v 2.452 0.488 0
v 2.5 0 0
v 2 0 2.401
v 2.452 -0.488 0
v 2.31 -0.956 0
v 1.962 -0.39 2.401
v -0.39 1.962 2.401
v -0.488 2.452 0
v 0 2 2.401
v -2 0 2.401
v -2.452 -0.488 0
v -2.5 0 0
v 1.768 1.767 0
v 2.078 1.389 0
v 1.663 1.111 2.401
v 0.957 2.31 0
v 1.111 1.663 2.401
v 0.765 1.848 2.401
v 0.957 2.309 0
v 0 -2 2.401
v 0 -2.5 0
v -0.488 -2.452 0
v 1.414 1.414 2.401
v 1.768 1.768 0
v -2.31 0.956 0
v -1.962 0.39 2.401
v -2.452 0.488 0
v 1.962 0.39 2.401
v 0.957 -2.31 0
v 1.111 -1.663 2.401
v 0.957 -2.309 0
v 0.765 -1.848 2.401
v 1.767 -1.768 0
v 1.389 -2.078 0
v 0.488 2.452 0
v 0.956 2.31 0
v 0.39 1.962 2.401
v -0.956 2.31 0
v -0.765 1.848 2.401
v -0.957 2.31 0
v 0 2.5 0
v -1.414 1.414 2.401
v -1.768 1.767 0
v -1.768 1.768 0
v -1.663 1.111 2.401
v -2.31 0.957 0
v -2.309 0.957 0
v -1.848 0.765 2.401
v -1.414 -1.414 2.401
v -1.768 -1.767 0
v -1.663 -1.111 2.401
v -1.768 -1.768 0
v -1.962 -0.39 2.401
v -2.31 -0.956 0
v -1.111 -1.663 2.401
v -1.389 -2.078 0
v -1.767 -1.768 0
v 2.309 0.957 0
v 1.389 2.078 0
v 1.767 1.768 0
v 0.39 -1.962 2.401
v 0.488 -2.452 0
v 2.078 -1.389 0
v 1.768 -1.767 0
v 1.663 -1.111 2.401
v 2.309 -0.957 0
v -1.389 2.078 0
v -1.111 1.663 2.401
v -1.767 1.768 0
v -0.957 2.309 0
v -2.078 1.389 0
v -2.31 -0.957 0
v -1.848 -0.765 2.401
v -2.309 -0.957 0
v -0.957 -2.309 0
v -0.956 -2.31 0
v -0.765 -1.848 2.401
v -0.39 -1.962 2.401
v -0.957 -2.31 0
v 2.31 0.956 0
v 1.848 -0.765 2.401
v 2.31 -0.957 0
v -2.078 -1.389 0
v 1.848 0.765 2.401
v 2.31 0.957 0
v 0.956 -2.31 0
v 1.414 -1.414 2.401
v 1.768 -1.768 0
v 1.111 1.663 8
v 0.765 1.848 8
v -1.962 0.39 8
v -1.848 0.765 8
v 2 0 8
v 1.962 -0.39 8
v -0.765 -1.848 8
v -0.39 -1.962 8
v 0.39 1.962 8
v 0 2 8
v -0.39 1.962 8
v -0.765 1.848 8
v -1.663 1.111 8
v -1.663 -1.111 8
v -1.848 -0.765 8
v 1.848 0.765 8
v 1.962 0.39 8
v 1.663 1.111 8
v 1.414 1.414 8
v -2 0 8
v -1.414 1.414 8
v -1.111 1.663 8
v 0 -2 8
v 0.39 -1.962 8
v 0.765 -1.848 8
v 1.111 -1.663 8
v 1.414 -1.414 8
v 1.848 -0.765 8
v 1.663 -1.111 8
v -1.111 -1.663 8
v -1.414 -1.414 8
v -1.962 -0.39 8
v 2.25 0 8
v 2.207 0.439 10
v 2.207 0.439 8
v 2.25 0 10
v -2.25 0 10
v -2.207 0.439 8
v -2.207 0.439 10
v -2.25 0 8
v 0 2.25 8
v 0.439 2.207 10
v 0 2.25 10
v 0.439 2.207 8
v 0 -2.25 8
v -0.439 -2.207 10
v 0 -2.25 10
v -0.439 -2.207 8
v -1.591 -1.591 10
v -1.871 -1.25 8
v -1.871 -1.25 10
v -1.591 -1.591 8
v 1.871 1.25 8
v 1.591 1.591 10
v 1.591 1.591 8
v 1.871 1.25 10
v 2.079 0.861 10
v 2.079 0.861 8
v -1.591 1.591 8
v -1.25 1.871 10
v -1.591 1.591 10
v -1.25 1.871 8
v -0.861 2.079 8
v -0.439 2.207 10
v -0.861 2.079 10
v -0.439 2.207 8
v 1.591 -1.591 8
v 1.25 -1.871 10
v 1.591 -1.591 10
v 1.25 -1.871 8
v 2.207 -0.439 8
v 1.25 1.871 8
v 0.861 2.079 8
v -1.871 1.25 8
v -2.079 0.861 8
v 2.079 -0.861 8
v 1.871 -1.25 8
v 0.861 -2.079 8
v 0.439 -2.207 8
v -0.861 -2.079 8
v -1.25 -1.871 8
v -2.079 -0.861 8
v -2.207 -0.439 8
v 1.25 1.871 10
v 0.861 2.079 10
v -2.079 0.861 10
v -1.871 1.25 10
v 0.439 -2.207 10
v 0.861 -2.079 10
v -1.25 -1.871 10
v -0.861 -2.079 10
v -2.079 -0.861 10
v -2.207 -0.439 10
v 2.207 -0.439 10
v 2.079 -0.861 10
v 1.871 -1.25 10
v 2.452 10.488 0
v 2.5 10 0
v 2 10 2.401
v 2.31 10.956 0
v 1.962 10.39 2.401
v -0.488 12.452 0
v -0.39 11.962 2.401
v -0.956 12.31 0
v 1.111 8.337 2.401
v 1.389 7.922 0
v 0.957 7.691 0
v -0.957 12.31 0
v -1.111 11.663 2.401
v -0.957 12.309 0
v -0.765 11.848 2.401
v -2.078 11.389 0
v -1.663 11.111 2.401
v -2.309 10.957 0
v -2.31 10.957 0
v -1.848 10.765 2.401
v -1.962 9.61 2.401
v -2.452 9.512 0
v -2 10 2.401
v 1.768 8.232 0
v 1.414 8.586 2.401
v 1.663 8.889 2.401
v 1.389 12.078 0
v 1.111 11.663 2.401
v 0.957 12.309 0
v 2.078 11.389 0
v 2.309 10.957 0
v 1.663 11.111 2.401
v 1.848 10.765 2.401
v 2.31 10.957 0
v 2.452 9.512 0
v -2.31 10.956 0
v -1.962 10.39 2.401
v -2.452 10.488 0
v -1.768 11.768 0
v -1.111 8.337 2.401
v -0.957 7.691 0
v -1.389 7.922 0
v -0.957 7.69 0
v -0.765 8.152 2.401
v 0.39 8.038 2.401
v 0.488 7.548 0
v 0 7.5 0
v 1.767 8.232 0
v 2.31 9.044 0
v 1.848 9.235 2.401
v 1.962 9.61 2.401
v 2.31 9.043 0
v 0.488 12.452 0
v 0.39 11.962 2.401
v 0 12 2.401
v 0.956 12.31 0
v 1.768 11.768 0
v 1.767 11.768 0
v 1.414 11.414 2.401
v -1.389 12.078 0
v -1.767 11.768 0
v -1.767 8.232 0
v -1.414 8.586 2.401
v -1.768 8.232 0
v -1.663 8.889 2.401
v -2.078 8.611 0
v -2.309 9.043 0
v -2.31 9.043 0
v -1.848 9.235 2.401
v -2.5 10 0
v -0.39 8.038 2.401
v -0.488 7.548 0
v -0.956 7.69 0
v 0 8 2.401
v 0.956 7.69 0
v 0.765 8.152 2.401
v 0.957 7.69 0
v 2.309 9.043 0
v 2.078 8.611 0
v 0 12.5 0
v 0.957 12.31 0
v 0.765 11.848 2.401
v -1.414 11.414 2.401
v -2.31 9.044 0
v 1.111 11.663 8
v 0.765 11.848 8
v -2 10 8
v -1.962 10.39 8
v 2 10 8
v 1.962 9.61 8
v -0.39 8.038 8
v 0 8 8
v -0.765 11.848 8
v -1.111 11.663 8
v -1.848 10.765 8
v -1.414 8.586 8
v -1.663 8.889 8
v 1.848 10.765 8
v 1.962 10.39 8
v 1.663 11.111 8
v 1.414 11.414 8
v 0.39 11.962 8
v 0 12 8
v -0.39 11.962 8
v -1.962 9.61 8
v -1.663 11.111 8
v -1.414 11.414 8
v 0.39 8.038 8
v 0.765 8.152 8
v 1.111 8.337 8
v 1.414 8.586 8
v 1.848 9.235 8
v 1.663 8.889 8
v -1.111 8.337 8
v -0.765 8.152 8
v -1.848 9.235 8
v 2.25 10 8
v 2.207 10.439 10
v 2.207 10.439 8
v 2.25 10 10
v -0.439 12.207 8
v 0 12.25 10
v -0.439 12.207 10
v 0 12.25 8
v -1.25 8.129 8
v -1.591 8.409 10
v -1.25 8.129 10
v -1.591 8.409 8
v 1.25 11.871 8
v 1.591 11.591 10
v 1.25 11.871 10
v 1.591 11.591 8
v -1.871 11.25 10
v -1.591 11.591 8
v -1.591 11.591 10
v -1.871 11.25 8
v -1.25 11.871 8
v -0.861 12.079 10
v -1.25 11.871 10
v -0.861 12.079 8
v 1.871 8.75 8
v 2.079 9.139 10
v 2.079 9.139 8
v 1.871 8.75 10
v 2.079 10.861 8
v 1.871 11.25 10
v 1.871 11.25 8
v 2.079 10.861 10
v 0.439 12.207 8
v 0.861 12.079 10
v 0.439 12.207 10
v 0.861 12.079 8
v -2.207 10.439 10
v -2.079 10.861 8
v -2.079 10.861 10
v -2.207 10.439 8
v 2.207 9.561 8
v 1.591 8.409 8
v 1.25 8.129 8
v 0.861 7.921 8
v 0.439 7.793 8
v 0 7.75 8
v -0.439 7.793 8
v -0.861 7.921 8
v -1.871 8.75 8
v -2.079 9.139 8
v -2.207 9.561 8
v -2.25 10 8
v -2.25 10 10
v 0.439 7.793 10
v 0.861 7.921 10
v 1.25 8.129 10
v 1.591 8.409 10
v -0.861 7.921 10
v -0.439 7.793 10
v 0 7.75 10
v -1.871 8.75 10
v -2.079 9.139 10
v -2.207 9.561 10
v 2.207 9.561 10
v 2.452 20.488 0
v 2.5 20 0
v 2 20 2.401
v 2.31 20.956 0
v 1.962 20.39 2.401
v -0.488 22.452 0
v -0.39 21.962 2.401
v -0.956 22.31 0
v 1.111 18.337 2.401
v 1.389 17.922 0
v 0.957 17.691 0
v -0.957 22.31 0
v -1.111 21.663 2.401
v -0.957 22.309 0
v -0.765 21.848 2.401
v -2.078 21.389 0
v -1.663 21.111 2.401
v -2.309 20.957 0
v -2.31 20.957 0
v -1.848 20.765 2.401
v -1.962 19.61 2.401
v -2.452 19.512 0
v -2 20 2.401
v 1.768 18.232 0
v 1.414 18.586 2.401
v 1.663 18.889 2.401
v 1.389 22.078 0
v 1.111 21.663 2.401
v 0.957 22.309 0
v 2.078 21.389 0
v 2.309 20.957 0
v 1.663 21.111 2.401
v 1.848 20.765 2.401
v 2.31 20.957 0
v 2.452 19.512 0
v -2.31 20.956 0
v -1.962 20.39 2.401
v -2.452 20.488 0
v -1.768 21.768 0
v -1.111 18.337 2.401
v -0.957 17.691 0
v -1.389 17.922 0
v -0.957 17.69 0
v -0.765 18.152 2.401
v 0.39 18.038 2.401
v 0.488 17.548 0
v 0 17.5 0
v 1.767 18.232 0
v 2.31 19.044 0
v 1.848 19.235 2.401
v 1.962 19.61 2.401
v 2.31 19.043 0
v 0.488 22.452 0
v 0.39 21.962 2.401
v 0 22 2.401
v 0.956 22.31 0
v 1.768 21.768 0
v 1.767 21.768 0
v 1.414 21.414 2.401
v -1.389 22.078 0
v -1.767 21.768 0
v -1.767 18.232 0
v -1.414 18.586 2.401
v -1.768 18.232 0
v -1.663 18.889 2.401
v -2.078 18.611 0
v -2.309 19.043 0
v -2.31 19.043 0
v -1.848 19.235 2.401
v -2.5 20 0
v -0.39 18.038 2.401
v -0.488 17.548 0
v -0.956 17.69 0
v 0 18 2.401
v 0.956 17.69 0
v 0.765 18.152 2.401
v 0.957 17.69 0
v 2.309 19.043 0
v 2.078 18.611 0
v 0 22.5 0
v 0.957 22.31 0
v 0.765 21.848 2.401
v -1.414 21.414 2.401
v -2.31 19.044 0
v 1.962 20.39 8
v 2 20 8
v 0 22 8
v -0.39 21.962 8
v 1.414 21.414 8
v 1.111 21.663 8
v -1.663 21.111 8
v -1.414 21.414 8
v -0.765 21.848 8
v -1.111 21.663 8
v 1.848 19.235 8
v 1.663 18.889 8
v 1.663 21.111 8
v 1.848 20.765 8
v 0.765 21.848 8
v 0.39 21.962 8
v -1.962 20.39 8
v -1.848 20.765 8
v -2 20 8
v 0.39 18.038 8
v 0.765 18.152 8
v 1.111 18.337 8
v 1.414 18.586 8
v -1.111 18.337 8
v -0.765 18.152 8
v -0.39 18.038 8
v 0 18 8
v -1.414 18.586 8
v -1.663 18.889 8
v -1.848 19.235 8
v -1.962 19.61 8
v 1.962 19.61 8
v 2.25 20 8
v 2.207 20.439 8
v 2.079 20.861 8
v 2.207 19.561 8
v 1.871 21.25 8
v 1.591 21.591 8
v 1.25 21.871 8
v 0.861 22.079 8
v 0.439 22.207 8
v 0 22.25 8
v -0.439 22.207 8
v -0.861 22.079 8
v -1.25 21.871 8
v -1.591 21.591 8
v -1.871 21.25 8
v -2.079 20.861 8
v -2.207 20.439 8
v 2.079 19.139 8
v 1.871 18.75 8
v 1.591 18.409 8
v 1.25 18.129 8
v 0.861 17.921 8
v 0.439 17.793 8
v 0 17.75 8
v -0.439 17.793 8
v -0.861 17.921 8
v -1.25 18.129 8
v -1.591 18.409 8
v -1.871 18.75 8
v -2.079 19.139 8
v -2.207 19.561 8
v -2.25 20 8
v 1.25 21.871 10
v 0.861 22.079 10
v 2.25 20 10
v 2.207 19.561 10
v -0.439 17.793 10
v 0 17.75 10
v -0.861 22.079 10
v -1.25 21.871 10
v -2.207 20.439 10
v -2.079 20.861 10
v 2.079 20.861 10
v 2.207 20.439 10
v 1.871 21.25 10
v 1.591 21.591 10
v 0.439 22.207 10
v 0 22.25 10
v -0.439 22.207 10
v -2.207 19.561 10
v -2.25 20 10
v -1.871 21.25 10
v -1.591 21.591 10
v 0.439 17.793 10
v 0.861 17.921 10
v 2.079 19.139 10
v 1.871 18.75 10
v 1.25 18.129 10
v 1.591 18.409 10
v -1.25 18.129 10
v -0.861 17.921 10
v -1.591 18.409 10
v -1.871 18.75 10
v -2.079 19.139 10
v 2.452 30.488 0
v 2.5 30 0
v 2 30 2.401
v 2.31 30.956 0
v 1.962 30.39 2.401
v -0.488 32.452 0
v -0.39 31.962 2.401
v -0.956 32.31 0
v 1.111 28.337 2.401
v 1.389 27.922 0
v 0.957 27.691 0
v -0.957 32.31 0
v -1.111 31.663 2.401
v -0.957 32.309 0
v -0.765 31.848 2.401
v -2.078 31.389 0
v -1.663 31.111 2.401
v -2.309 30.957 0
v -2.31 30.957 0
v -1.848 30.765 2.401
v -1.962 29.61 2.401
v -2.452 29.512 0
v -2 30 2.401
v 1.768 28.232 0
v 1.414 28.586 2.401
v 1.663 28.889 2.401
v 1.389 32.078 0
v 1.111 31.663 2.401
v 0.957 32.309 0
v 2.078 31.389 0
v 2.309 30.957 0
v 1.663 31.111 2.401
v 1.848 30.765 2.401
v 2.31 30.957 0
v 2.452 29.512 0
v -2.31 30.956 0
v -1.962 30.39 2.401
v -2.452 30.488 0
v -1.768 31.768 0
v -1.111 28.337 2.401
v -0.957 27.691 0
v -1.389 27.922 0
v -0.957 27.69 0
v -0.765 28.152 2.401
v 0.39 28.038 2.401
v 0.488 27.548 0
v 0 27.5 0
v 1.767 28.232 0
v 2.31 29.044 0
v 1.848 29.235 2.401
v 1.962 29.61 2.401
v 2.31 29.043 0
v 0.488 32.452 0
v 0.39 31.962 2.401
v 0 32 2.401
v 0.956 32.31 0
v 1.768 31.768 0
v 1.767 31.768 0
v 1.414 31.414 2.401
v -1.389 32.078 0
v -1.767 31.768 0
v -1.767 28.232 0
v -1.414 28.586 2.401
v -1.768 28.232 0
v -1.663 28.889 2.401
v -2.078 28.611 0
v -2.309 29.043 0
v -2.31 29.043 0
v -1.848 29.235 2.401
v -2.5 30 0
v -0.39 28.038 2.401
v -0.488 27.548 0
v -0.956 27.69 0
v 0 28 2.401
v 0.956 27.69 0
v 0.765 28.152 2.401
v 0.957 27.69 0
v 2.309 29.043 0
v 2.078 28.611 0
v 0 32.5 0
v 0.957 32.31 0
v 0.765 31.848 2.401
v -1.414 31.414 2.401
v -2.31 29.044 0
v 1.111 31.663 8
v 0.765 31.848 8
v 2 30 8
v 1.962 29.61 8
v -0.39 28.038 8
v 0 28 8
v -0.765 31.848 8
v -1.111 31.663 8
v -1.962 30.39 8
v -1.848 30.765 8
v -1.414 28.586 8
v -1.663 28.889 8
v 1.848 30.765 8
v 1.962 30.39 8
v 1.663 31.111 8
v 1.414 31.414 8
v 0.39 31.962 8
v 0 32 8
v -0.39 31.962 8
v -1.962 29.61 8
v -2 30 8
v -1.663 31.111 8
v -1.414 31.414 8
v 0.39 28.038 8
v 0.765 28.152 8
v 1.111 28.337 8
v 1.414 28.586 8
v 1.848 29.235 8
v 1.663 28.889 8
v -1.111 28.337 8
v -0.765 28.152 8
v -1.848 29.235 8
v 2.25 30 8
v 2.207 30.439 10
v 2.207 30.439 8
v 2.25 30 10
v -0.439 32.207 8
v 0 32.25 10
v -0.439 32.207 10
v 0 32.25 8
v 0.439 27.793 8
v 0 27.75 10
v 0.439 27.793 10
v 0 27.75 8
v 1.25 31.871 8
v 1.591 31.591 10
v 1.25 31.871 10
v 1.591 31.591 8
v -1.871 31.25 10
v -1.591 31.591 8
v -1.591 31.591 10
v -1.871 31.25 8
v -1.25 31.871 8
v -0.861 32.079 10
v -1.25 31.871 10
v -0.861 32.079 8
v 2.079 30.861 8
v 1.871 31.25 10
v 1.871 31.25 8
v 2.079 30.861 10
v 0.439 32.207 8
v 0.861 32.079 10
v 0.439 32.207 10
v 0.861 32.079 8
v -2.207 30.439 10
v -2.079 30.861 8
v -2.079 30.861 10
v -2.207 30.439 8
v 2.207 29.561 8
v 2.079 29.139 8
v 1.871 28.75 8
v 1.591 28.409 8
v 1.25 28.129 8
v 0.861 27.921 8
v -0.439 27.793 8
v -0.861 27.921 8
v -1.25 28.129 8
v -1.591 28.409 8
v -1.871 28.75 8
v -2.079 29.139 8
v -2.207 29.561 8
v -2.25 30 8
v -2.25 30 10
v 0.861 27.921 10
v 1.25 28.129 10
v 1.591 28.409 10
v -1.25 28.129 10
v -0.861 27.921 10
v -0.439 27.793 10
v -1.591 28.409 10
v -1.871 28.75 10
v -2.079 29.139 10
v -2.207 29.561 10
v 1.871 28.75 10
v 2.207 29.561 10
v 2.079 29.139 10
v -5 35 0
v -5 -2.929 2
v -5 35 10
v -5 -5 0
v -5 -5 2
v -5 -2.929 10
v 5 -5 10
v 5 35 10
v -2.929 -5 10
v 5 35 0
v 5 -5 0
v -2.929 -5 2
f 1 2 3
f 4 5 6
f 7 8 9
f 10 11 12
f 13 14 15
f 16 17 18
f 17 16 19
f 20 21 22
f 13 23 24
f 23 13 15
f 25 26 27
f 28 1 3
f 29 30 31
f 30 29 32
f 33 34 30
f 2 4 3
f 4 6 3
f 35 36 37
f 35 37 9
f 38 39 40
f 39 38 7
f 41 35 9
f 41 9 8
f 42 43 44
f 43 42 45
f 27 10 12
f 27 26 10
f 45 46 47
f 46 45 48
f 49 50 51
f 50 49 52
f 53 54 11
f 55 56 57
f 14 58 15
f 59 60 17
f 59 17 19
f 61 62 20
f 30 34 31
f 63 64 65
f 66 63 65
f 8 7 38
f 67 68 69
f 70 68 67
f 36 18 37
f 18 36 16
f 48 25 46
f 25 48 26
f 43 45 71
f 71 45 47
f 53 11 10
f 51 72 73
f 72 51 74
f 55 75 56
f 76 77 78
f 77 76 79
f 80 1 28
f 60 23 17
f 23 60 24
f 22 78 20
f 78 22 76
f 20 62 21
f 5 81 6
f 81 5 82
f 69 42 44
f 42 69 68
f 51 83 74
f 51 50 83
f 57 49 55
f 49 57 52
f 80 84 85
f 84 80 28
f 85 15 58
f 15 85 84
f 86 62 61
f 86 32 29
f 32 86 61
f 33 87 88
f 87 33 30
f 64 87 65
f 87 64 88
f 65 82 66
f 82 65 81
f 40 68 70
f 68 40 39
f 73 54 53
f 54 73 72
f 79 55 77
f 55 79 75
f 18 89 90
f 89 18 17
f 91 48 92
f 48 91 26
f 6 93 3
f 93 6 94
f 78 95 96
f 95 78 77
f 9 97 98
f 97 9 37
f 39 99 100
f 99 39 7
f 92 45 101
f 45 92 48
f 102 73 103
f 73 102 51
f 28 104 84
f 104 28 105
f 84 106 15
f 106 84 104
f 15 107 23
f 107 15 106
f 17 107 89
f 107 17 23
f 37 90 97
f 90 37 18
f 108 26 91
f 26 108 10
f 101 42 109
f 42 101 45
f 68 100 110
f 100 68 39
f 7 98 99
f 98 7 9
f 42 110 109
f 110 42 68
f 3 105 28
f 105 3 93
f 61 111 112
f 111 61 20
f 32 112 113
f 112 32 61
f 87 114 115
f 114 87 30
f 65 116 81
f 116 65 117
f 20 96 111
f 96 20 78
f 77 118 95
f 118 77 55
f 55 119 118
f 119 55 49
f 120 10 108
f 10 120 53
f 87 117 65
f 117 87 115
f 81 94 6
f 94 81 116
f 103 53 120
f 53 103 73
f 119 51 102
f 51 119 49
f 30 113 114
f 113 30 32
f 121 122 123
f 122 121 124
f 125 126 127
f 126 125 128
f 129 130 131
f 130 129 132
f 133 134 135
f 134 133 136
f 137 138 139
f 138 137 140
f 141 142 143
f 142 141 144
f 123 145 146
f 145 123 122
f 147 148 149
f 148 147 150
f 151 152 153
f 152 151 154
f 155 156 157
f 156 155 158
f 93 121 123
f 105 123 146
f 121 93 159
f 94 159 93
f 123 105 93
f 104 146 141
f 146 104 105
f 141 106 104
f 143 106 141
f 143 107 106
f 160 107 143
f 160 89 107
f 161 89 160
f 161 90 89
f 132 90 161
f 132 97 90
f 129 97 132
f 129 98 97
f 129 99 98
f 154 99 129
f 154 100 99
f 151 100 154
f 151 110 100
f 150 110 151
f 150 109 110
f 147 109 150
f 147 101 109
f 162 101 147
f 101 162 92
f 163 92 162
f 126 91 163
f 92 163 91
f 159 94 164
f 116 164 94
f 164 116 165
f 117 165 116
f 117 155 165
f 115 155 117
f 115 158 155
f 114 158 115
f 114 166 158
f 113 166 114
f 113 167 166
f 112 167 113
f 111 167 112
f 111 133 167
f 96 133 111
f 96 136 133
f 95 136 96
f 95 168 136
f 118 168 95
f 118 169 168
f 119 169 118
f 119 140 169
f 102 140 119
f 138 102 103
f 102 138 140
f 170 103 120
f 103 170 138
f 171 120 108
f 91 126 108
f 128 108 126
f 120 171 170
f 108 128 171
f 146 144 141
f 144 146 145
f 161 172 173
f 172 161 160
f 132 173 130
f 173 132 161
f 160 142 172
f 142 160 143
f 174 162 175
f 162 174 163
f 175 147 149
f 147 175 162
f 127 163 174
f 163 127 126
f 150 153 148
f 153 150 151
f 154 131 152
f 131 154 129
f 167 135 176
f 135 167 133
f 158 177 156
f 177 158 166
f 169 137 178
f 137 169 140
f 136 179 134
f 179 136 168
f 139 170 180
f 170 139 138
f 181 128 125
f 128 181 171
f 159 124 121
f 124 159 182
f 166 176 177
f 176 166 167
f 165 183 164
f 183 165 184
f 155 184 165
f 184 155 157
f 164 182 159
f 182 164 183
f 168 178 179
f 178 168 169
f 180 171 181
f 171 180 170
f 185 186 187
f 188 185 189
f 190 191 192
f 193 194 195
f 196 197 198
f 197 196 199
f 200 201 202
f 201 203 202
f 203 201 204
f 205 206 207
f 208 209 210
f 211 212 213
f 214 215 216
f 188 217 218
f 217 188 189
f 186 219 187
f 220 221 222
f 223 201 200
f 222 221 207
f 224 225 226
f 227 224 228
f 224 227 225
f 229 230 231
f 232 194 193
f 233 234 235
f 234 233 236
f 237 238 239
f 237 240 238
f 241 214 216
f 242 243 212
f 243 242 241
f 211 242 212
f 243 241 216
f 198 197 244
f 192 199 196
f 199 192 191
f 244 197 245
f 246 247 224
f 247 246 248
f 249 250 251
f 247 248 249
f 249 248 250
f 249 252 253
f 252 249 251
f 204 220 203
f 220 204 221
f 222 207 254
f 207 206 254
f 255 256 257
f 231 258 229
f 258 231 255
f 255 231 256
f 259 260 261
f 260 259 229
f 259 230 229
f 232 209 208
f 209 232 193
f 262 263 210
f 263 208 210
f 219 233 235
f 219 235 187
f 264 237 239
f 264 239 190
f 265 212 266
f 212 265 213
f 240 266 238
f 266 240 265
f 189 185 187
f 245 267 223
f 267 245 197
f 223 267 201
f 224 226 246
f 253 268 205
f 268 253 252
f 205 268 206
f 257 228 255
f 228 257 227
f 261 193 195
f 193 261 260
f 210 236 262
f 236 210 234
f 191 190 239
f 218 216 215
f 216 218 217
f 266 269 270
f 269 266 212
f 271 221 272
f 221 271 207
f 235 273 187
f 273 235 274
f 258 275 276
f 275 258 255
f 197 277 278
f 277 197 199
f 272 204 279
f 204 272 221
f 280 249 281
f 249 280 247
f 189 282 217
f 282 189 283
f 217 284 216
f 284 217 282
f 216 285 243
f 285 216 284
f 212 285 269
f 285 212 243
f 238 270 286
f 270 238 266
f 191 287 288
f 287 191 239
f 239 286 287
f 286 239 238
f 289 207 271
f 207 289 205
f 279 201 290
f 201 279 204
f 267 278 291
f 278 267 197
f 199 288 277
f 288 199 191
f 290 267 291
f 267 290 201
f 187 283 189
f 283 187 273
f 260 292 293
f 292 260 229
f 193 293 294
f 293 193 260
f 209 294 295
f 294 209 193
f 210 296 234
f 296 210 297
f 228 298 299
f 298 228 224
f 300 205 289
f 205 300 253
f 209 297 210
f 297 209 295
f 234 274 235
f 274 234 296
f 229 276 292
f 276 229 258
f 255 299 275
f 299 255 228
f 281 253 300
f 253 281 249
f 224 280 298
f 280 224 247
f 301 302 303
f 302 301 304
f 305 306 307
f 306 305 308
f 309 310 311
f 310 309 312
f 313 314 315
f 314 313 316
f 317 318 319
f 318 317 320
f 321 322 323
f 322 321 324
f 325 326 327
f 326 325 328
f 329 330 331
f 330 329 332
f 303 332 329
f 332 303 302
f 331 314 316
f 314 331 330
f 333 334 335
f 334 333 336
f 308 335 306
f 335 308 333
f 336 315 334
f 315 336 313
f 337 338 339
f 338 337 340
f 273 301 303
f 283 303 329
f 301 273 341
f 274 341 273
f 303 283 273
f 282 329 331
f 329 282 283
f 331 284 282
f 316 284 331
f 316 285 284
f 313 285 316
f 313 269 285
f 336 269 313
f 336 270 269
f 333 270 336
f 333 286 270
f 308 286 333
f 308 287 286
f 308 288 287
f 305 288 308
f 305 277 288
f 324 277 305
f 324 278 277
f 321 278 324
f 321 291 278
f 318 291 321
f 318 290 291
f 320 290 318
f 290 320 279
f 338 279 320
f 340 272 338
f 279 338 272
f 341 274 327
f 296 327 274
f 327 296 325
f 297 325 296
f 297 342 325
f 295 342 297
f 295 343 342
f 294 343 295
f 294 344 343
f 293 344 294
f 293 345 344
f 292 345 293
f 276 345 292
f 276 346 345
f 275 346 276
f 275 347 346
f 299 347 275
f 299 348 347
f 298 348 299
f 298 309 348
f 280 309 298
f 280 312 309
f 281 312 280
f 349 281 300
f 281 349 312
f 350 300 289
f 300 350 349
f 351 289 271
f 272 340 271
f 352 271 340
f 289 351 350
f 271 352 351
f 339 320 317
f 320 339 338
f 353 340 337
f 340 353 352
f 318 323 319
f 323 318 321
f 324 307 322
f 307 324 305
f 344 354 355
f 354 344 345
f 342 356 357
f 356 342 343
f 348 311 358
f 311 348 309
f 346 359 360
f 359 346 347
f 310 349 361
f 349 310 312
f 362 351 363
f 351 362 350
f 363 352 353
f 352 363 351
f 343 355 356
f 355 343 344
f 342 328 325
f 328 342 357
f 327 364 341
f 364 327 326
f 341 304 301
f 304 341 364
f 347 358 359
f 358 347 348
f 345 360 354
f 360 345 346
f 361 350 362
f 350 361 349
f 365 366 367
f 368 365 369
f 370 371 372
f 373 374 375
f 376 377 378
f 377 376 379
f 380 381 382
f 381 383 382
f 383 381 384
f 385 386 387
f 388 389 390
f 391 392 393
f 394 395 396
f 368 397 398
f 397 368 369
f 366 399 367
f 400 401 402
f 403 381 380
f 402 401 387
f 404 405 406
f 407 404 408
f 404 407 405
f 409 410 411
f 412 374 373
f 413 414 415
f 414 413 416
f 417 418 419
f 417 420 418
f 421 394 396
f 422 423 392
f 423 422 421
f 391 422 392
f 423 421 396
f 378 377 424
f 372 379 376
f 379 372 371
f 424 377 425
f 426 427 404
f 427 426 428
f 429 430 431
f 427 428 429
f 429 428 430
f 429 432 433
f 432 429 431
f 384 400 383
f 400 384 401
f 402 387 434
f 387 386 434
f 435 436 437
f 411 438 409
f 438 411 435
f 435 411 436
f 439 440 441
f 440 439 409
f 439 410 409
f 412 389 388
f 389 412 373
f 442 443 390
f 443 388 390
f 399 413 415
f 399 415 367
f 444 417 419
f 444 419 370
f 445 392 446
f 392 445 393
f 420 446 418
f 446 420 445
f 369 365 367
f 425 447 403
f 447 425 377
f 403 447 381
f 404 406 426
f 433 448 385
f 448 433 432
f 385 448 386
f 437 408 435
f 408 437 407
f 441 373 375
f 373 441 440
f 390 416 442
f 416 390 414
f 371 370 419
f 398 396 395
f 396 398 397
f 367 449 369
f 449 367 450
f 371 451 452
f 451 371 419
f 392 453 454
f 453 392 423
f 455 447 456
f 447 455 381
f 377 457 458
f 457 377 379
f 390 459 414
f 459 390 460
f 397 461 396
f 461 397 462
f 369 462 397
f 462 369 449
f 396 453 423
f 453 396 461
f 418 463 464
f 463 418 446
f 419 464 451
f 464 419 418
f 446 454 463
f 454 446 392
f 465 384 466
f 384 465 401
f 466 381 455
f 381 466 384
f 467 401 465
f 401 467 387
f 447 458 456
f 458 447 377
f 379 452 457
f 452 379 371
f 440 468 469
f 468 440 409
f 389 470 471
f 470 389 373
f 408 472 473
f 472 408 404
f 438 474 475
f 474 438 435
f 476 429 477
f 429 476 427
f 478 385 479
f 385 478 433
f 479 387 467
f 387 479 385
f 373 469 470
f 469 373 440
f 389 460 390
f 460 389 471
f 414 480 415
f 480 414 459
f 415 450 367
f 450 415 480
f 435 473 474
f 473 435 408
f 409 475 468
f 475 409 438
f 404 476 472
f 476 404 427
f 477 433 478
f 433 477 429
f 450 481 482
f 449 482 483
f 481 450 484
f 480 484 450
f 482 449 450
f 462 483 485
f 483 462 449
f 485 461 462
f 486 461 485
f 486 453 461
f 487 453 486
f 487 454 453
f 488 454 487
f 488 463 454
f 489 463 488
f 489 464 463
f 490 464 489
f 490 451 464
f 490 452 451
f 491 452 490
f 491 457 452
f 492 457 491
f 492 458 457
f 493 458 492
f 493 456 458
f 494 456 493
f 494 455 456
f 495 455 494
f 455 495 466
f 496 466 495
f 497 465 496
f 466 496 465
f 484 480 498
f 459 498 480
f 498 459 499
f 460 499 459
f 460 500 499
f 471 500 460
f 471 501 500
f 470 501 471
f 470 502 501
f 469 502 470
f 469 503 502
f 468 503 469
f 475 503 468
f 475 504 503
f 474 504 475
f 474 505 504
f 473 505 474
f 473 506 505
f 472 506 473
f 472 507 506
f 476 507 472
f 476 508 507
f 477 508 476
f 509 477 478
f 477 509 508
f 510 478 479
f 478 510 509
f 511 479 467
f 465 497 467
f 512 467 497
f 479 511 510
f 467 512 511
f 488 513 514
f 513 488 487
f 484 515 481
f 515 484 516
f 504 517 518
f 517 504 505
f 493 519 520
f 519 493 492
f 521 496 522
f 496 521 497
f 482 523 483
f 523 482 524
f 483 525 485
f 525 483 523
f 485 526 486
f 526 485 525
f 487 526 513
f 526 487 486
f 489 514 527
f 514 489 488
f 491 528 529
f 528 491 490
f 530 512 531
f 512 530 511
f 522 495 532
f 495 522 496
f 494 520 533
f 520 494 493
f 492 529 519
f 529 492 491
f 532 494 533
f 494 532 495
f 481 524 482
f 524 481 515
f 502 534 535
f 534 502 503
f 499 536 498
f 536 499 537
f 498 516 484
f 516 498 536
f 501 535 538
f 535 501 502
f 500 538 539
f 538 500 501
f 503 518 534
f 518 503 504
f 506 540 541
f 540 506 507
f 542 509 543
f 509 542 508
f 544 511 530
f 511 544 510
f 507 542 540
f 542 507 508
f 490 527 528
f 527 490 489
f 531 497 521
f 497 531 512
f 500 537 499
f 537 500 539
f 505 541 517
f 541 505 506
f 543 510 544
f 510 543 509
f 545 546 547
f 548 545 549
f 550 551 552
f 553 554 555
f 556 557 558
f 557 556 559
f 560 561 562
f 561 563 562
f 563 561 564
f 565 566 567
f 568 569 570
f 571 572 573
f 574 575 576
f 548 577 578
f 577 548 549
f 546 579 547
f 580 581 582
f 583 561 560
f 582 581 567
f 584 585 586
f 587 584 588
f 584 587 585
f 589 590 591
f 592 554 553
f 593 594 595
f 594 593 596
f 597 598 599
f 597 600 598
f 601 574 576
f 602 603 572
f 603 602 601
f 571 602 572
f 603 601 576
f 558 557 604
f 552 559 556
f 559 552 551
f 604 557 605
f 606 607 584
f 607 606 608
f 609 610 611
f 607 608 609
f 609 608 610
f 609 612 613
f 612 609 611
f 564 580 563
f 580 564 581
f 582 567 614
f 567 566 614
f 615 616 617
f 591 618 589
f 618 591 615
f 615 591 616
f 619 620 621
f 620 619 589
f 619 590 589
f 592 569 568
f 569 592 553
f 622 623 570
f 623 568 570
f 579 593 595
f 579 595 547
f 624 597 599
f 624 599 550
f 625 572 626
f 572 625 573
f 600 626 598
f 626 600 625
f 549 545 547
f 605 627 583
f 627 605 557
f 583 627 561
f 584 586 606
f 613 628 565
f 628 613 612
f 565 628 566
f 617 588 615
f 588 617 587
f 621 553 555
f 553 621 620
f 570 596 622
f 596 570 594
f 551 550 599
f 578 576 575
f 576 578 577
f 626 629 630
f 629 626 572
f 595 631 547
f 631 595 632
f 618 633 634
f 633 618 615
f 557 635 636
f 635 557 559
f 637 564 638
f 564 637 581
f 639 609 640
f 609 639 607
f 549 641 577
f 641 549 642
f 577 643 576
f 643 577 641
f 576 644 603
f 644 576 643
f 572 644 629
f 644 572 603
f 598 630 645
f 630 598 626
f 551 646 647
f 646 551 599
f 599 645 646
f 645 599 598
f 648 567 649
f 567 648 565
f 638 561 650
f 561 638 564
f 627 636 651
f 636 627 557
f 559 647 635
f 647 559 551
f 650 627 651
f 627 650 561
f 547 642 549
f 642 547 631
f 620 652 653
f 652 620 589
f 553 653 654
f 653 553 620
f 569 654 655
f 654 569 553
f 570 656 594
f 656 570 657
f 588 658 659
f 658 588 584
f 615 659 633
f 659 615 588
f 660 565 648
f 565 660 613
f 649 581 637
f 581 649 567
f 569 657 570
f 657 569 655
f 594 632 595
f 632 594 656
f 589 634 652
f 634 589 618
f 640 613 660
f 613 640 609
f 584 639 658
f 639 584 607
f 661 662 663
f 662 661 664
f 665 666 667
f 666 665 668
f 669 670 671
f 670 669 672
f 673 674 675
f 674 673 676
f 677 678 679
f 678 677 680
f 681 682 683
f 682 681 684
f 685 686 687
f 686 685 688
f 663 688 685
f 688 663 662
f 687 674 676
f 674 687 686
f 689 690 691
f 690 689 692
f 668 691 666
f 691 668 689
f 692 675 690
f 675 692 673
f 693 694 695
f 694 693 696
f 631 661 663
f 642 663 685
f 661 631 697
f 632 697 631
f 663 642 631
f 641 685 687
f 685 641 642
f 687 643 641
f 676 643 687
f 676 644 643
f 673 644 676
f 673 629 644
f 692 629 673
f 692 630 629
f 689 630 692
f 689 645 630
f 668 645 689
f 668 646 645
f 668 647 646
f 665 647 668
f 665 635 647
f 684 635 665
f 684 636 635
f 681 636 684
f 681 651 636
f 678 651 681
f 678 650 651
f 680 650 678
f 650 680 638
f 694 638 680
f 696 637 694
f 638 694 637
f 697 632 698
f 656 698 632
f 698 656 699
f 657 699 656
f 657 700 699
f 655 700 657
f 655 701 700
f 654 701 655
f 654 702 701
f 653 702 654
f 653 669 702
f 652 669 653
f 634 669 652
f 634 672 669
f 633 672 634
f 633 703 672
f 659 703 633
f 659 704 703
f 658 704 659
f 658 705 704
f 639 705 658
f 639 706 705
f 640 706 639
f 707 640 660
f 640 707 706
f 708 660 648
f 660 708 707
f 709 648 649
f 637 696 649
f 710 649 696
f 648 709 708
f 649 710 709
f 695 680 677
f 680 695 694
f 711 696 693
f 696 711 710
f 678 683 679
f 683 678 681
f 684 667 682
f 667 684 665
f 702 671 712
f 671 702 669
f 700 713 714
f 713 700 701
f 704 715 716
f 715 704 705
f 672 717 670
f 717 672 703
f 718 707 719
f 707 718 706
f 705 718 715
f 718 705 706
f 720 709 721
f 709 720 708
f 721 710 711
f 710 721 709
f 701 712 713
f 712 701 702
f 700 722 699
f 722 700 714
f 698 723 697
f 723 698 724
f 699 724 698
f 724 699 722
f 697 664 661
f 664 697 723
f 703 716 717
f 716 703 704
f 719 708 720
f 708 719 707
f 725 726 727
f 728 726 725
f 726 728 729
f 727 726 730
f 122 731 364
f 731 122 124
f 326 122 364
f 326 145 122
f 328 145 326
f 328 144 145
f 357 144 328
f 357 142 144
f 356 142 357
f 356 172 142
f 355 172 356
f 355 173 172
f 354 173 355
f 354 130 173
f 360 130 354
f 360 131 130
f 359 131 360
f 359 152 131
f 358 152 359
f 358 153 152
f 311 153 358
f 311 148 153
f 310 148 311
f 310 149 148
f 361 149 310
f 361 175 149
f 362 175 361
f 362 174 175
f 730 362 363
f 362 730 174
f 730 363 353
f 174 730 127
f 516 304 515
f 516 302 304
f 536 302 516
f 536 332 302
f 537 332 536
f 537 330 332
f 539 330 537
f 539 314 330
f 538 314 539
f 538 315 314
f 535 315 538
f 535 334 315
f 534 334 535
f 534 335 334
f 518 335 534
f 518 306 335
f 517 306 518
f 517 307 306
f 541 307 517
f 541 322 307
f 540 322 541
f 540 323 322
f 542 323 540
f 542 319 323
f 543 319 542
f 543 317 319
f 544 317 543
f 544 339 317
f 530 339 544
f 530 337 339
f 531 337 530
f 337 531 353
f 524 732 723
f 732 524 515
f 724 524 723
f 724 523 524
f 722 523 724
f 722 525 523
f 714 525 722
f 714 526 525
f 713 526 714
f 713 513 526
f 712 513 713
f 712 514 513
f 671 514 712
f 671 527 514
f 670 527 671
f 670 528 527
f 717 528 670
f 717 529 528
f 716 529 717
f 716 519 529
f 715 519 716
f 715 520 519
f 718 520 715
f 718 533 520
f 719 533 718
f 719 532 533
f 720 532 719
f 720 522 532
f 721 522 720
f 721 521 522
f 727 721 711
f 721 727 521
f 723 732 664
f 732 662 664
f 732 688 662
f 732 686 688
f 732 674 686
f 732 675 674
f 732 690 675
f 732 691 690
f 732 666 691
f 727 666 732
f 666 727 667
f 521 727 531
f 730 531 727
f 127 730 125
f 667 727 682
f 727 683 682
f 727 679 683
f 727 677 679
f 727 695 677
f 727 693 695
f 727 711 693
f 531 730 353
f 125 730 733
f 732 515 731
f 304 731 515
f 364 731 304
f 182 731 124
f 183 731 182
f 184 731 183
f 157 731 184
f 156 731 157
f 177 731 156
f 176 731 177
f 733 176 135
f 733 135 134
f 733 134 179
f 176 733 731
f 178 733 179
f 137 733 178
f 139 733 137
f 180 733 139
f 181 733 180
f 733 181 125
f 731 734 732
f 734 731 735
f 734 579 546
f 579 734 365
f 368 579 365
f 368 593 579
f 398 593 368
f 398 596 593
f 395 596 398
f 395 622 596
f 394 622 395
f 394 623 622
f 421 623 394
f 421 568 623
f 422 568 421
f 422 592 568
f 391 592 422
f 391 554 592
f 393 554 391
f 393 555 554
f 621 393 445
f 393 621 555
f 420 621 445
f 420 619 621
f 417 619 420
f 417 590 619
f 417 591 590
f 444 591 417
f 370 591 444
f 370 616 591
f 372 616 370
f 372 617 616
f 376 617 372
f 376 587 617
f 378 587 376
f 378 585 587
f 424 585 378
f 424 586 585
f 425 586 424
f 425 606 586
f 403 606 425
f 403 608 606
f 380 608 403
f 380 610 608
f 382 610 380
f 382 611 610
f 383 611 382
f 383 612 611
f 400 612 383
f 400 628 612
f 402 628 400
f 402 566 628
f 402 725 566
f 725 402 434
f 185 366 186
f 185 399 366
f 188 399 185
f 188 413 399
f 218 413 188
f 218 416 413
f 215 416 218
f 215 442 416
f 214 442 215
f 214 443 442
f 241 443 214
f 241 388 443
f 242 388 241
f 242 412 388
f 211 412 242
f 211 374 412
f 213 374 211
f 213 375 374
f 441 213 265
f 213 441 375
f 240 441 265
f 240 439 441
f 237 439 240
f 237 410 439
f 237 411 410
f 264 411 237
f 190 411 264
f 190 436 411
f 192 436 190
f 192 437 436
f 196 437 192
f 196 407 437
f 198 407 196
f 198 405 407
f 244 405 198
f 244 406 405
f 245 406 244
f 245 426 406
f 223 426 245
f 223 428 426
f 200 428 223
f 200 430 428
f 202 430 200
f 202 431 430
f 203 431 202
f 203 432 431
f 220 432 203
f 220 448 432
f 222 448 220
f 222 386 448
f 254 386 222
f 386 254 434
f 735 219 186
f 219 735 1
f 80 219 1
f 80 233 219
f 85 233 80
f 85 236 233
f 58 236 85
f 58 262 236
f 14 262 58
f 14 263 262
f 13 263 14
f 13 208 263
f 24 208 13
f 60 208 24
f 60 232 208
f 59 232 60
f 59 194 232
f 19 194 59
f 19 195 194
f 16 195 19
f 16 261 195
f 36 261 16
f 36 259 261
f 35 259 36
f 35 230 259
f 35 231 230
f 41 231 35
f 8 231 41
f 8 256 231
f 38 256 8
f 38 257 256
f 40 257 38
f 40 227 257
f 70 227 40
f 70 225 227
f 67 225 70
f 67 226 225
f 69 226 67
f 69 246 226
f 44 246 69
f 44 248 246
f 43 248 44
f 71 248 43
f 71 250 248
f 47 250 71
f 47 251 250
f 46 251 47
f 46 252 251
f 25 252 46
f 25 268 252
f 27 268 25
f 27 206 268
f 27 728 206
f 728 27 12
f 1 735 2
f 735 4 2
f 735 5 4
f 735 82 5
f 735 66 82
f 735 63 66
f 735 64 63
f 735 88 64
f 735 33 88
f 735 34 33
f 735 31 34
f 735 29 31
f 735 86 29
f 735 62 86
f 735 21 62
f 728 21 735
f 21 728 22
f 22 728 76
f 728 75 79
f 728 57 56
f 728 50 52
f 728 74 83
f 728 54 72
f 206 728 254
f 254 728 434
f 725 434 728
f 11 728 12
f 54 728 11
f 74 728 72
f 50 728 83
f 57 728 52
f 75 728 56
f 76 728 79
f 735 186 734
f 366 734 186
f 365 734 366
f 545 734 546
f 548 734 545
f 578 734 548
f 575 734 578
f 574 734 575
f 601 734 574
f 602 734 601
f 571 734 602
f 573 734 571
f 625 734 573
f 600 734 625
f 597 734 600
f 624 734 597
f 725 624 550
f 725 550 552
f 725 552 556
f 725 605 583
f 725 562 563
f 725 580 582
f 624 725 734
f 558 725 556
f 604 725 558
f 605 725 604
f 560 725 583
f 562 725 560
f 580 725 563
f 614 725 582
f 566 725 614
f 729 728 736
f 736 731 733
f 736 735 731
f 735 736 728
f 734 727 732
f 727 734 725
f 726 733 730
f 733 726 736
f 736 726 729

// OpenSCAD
// Test part for practicing threaded inserts insertion using a 
// solder iron..

$fn=32;

h=8;

eps1 = 0.001;
eps2 = 2*eps1;

module hole(x, y, d1, d2, ratio, d3) {
  translate([x, y, -eps1]) cylinder(d1=d1, d2=d2, h=ratio*h+eps2);
  translate([x, y, ratio*h]) cylinder(d=d2, h=(1-ratio)*h+eps1);
  translate([x, y, h]) cylinder(d=d3, h=10);
}

module holes() {
   hole(0,  0,  5.0, 4.0, 0.3, 4.5);
   hole(0, 10,  5.0, 4.0, 0.3, 4.5);
   hole(0, 20,  5.0, 4.0, 0.3, 4.5);
   hole(0, 30,  5.0, 4.0, 0.3, 4.5);
}

difference() {
  translate([-5, -5, 0]) cube([10, 40, 10]);
  holes();
  translate([-5, -10, 2]) rotate([0, 0, 45]) cube([5, 5, h+eps2]);
}
